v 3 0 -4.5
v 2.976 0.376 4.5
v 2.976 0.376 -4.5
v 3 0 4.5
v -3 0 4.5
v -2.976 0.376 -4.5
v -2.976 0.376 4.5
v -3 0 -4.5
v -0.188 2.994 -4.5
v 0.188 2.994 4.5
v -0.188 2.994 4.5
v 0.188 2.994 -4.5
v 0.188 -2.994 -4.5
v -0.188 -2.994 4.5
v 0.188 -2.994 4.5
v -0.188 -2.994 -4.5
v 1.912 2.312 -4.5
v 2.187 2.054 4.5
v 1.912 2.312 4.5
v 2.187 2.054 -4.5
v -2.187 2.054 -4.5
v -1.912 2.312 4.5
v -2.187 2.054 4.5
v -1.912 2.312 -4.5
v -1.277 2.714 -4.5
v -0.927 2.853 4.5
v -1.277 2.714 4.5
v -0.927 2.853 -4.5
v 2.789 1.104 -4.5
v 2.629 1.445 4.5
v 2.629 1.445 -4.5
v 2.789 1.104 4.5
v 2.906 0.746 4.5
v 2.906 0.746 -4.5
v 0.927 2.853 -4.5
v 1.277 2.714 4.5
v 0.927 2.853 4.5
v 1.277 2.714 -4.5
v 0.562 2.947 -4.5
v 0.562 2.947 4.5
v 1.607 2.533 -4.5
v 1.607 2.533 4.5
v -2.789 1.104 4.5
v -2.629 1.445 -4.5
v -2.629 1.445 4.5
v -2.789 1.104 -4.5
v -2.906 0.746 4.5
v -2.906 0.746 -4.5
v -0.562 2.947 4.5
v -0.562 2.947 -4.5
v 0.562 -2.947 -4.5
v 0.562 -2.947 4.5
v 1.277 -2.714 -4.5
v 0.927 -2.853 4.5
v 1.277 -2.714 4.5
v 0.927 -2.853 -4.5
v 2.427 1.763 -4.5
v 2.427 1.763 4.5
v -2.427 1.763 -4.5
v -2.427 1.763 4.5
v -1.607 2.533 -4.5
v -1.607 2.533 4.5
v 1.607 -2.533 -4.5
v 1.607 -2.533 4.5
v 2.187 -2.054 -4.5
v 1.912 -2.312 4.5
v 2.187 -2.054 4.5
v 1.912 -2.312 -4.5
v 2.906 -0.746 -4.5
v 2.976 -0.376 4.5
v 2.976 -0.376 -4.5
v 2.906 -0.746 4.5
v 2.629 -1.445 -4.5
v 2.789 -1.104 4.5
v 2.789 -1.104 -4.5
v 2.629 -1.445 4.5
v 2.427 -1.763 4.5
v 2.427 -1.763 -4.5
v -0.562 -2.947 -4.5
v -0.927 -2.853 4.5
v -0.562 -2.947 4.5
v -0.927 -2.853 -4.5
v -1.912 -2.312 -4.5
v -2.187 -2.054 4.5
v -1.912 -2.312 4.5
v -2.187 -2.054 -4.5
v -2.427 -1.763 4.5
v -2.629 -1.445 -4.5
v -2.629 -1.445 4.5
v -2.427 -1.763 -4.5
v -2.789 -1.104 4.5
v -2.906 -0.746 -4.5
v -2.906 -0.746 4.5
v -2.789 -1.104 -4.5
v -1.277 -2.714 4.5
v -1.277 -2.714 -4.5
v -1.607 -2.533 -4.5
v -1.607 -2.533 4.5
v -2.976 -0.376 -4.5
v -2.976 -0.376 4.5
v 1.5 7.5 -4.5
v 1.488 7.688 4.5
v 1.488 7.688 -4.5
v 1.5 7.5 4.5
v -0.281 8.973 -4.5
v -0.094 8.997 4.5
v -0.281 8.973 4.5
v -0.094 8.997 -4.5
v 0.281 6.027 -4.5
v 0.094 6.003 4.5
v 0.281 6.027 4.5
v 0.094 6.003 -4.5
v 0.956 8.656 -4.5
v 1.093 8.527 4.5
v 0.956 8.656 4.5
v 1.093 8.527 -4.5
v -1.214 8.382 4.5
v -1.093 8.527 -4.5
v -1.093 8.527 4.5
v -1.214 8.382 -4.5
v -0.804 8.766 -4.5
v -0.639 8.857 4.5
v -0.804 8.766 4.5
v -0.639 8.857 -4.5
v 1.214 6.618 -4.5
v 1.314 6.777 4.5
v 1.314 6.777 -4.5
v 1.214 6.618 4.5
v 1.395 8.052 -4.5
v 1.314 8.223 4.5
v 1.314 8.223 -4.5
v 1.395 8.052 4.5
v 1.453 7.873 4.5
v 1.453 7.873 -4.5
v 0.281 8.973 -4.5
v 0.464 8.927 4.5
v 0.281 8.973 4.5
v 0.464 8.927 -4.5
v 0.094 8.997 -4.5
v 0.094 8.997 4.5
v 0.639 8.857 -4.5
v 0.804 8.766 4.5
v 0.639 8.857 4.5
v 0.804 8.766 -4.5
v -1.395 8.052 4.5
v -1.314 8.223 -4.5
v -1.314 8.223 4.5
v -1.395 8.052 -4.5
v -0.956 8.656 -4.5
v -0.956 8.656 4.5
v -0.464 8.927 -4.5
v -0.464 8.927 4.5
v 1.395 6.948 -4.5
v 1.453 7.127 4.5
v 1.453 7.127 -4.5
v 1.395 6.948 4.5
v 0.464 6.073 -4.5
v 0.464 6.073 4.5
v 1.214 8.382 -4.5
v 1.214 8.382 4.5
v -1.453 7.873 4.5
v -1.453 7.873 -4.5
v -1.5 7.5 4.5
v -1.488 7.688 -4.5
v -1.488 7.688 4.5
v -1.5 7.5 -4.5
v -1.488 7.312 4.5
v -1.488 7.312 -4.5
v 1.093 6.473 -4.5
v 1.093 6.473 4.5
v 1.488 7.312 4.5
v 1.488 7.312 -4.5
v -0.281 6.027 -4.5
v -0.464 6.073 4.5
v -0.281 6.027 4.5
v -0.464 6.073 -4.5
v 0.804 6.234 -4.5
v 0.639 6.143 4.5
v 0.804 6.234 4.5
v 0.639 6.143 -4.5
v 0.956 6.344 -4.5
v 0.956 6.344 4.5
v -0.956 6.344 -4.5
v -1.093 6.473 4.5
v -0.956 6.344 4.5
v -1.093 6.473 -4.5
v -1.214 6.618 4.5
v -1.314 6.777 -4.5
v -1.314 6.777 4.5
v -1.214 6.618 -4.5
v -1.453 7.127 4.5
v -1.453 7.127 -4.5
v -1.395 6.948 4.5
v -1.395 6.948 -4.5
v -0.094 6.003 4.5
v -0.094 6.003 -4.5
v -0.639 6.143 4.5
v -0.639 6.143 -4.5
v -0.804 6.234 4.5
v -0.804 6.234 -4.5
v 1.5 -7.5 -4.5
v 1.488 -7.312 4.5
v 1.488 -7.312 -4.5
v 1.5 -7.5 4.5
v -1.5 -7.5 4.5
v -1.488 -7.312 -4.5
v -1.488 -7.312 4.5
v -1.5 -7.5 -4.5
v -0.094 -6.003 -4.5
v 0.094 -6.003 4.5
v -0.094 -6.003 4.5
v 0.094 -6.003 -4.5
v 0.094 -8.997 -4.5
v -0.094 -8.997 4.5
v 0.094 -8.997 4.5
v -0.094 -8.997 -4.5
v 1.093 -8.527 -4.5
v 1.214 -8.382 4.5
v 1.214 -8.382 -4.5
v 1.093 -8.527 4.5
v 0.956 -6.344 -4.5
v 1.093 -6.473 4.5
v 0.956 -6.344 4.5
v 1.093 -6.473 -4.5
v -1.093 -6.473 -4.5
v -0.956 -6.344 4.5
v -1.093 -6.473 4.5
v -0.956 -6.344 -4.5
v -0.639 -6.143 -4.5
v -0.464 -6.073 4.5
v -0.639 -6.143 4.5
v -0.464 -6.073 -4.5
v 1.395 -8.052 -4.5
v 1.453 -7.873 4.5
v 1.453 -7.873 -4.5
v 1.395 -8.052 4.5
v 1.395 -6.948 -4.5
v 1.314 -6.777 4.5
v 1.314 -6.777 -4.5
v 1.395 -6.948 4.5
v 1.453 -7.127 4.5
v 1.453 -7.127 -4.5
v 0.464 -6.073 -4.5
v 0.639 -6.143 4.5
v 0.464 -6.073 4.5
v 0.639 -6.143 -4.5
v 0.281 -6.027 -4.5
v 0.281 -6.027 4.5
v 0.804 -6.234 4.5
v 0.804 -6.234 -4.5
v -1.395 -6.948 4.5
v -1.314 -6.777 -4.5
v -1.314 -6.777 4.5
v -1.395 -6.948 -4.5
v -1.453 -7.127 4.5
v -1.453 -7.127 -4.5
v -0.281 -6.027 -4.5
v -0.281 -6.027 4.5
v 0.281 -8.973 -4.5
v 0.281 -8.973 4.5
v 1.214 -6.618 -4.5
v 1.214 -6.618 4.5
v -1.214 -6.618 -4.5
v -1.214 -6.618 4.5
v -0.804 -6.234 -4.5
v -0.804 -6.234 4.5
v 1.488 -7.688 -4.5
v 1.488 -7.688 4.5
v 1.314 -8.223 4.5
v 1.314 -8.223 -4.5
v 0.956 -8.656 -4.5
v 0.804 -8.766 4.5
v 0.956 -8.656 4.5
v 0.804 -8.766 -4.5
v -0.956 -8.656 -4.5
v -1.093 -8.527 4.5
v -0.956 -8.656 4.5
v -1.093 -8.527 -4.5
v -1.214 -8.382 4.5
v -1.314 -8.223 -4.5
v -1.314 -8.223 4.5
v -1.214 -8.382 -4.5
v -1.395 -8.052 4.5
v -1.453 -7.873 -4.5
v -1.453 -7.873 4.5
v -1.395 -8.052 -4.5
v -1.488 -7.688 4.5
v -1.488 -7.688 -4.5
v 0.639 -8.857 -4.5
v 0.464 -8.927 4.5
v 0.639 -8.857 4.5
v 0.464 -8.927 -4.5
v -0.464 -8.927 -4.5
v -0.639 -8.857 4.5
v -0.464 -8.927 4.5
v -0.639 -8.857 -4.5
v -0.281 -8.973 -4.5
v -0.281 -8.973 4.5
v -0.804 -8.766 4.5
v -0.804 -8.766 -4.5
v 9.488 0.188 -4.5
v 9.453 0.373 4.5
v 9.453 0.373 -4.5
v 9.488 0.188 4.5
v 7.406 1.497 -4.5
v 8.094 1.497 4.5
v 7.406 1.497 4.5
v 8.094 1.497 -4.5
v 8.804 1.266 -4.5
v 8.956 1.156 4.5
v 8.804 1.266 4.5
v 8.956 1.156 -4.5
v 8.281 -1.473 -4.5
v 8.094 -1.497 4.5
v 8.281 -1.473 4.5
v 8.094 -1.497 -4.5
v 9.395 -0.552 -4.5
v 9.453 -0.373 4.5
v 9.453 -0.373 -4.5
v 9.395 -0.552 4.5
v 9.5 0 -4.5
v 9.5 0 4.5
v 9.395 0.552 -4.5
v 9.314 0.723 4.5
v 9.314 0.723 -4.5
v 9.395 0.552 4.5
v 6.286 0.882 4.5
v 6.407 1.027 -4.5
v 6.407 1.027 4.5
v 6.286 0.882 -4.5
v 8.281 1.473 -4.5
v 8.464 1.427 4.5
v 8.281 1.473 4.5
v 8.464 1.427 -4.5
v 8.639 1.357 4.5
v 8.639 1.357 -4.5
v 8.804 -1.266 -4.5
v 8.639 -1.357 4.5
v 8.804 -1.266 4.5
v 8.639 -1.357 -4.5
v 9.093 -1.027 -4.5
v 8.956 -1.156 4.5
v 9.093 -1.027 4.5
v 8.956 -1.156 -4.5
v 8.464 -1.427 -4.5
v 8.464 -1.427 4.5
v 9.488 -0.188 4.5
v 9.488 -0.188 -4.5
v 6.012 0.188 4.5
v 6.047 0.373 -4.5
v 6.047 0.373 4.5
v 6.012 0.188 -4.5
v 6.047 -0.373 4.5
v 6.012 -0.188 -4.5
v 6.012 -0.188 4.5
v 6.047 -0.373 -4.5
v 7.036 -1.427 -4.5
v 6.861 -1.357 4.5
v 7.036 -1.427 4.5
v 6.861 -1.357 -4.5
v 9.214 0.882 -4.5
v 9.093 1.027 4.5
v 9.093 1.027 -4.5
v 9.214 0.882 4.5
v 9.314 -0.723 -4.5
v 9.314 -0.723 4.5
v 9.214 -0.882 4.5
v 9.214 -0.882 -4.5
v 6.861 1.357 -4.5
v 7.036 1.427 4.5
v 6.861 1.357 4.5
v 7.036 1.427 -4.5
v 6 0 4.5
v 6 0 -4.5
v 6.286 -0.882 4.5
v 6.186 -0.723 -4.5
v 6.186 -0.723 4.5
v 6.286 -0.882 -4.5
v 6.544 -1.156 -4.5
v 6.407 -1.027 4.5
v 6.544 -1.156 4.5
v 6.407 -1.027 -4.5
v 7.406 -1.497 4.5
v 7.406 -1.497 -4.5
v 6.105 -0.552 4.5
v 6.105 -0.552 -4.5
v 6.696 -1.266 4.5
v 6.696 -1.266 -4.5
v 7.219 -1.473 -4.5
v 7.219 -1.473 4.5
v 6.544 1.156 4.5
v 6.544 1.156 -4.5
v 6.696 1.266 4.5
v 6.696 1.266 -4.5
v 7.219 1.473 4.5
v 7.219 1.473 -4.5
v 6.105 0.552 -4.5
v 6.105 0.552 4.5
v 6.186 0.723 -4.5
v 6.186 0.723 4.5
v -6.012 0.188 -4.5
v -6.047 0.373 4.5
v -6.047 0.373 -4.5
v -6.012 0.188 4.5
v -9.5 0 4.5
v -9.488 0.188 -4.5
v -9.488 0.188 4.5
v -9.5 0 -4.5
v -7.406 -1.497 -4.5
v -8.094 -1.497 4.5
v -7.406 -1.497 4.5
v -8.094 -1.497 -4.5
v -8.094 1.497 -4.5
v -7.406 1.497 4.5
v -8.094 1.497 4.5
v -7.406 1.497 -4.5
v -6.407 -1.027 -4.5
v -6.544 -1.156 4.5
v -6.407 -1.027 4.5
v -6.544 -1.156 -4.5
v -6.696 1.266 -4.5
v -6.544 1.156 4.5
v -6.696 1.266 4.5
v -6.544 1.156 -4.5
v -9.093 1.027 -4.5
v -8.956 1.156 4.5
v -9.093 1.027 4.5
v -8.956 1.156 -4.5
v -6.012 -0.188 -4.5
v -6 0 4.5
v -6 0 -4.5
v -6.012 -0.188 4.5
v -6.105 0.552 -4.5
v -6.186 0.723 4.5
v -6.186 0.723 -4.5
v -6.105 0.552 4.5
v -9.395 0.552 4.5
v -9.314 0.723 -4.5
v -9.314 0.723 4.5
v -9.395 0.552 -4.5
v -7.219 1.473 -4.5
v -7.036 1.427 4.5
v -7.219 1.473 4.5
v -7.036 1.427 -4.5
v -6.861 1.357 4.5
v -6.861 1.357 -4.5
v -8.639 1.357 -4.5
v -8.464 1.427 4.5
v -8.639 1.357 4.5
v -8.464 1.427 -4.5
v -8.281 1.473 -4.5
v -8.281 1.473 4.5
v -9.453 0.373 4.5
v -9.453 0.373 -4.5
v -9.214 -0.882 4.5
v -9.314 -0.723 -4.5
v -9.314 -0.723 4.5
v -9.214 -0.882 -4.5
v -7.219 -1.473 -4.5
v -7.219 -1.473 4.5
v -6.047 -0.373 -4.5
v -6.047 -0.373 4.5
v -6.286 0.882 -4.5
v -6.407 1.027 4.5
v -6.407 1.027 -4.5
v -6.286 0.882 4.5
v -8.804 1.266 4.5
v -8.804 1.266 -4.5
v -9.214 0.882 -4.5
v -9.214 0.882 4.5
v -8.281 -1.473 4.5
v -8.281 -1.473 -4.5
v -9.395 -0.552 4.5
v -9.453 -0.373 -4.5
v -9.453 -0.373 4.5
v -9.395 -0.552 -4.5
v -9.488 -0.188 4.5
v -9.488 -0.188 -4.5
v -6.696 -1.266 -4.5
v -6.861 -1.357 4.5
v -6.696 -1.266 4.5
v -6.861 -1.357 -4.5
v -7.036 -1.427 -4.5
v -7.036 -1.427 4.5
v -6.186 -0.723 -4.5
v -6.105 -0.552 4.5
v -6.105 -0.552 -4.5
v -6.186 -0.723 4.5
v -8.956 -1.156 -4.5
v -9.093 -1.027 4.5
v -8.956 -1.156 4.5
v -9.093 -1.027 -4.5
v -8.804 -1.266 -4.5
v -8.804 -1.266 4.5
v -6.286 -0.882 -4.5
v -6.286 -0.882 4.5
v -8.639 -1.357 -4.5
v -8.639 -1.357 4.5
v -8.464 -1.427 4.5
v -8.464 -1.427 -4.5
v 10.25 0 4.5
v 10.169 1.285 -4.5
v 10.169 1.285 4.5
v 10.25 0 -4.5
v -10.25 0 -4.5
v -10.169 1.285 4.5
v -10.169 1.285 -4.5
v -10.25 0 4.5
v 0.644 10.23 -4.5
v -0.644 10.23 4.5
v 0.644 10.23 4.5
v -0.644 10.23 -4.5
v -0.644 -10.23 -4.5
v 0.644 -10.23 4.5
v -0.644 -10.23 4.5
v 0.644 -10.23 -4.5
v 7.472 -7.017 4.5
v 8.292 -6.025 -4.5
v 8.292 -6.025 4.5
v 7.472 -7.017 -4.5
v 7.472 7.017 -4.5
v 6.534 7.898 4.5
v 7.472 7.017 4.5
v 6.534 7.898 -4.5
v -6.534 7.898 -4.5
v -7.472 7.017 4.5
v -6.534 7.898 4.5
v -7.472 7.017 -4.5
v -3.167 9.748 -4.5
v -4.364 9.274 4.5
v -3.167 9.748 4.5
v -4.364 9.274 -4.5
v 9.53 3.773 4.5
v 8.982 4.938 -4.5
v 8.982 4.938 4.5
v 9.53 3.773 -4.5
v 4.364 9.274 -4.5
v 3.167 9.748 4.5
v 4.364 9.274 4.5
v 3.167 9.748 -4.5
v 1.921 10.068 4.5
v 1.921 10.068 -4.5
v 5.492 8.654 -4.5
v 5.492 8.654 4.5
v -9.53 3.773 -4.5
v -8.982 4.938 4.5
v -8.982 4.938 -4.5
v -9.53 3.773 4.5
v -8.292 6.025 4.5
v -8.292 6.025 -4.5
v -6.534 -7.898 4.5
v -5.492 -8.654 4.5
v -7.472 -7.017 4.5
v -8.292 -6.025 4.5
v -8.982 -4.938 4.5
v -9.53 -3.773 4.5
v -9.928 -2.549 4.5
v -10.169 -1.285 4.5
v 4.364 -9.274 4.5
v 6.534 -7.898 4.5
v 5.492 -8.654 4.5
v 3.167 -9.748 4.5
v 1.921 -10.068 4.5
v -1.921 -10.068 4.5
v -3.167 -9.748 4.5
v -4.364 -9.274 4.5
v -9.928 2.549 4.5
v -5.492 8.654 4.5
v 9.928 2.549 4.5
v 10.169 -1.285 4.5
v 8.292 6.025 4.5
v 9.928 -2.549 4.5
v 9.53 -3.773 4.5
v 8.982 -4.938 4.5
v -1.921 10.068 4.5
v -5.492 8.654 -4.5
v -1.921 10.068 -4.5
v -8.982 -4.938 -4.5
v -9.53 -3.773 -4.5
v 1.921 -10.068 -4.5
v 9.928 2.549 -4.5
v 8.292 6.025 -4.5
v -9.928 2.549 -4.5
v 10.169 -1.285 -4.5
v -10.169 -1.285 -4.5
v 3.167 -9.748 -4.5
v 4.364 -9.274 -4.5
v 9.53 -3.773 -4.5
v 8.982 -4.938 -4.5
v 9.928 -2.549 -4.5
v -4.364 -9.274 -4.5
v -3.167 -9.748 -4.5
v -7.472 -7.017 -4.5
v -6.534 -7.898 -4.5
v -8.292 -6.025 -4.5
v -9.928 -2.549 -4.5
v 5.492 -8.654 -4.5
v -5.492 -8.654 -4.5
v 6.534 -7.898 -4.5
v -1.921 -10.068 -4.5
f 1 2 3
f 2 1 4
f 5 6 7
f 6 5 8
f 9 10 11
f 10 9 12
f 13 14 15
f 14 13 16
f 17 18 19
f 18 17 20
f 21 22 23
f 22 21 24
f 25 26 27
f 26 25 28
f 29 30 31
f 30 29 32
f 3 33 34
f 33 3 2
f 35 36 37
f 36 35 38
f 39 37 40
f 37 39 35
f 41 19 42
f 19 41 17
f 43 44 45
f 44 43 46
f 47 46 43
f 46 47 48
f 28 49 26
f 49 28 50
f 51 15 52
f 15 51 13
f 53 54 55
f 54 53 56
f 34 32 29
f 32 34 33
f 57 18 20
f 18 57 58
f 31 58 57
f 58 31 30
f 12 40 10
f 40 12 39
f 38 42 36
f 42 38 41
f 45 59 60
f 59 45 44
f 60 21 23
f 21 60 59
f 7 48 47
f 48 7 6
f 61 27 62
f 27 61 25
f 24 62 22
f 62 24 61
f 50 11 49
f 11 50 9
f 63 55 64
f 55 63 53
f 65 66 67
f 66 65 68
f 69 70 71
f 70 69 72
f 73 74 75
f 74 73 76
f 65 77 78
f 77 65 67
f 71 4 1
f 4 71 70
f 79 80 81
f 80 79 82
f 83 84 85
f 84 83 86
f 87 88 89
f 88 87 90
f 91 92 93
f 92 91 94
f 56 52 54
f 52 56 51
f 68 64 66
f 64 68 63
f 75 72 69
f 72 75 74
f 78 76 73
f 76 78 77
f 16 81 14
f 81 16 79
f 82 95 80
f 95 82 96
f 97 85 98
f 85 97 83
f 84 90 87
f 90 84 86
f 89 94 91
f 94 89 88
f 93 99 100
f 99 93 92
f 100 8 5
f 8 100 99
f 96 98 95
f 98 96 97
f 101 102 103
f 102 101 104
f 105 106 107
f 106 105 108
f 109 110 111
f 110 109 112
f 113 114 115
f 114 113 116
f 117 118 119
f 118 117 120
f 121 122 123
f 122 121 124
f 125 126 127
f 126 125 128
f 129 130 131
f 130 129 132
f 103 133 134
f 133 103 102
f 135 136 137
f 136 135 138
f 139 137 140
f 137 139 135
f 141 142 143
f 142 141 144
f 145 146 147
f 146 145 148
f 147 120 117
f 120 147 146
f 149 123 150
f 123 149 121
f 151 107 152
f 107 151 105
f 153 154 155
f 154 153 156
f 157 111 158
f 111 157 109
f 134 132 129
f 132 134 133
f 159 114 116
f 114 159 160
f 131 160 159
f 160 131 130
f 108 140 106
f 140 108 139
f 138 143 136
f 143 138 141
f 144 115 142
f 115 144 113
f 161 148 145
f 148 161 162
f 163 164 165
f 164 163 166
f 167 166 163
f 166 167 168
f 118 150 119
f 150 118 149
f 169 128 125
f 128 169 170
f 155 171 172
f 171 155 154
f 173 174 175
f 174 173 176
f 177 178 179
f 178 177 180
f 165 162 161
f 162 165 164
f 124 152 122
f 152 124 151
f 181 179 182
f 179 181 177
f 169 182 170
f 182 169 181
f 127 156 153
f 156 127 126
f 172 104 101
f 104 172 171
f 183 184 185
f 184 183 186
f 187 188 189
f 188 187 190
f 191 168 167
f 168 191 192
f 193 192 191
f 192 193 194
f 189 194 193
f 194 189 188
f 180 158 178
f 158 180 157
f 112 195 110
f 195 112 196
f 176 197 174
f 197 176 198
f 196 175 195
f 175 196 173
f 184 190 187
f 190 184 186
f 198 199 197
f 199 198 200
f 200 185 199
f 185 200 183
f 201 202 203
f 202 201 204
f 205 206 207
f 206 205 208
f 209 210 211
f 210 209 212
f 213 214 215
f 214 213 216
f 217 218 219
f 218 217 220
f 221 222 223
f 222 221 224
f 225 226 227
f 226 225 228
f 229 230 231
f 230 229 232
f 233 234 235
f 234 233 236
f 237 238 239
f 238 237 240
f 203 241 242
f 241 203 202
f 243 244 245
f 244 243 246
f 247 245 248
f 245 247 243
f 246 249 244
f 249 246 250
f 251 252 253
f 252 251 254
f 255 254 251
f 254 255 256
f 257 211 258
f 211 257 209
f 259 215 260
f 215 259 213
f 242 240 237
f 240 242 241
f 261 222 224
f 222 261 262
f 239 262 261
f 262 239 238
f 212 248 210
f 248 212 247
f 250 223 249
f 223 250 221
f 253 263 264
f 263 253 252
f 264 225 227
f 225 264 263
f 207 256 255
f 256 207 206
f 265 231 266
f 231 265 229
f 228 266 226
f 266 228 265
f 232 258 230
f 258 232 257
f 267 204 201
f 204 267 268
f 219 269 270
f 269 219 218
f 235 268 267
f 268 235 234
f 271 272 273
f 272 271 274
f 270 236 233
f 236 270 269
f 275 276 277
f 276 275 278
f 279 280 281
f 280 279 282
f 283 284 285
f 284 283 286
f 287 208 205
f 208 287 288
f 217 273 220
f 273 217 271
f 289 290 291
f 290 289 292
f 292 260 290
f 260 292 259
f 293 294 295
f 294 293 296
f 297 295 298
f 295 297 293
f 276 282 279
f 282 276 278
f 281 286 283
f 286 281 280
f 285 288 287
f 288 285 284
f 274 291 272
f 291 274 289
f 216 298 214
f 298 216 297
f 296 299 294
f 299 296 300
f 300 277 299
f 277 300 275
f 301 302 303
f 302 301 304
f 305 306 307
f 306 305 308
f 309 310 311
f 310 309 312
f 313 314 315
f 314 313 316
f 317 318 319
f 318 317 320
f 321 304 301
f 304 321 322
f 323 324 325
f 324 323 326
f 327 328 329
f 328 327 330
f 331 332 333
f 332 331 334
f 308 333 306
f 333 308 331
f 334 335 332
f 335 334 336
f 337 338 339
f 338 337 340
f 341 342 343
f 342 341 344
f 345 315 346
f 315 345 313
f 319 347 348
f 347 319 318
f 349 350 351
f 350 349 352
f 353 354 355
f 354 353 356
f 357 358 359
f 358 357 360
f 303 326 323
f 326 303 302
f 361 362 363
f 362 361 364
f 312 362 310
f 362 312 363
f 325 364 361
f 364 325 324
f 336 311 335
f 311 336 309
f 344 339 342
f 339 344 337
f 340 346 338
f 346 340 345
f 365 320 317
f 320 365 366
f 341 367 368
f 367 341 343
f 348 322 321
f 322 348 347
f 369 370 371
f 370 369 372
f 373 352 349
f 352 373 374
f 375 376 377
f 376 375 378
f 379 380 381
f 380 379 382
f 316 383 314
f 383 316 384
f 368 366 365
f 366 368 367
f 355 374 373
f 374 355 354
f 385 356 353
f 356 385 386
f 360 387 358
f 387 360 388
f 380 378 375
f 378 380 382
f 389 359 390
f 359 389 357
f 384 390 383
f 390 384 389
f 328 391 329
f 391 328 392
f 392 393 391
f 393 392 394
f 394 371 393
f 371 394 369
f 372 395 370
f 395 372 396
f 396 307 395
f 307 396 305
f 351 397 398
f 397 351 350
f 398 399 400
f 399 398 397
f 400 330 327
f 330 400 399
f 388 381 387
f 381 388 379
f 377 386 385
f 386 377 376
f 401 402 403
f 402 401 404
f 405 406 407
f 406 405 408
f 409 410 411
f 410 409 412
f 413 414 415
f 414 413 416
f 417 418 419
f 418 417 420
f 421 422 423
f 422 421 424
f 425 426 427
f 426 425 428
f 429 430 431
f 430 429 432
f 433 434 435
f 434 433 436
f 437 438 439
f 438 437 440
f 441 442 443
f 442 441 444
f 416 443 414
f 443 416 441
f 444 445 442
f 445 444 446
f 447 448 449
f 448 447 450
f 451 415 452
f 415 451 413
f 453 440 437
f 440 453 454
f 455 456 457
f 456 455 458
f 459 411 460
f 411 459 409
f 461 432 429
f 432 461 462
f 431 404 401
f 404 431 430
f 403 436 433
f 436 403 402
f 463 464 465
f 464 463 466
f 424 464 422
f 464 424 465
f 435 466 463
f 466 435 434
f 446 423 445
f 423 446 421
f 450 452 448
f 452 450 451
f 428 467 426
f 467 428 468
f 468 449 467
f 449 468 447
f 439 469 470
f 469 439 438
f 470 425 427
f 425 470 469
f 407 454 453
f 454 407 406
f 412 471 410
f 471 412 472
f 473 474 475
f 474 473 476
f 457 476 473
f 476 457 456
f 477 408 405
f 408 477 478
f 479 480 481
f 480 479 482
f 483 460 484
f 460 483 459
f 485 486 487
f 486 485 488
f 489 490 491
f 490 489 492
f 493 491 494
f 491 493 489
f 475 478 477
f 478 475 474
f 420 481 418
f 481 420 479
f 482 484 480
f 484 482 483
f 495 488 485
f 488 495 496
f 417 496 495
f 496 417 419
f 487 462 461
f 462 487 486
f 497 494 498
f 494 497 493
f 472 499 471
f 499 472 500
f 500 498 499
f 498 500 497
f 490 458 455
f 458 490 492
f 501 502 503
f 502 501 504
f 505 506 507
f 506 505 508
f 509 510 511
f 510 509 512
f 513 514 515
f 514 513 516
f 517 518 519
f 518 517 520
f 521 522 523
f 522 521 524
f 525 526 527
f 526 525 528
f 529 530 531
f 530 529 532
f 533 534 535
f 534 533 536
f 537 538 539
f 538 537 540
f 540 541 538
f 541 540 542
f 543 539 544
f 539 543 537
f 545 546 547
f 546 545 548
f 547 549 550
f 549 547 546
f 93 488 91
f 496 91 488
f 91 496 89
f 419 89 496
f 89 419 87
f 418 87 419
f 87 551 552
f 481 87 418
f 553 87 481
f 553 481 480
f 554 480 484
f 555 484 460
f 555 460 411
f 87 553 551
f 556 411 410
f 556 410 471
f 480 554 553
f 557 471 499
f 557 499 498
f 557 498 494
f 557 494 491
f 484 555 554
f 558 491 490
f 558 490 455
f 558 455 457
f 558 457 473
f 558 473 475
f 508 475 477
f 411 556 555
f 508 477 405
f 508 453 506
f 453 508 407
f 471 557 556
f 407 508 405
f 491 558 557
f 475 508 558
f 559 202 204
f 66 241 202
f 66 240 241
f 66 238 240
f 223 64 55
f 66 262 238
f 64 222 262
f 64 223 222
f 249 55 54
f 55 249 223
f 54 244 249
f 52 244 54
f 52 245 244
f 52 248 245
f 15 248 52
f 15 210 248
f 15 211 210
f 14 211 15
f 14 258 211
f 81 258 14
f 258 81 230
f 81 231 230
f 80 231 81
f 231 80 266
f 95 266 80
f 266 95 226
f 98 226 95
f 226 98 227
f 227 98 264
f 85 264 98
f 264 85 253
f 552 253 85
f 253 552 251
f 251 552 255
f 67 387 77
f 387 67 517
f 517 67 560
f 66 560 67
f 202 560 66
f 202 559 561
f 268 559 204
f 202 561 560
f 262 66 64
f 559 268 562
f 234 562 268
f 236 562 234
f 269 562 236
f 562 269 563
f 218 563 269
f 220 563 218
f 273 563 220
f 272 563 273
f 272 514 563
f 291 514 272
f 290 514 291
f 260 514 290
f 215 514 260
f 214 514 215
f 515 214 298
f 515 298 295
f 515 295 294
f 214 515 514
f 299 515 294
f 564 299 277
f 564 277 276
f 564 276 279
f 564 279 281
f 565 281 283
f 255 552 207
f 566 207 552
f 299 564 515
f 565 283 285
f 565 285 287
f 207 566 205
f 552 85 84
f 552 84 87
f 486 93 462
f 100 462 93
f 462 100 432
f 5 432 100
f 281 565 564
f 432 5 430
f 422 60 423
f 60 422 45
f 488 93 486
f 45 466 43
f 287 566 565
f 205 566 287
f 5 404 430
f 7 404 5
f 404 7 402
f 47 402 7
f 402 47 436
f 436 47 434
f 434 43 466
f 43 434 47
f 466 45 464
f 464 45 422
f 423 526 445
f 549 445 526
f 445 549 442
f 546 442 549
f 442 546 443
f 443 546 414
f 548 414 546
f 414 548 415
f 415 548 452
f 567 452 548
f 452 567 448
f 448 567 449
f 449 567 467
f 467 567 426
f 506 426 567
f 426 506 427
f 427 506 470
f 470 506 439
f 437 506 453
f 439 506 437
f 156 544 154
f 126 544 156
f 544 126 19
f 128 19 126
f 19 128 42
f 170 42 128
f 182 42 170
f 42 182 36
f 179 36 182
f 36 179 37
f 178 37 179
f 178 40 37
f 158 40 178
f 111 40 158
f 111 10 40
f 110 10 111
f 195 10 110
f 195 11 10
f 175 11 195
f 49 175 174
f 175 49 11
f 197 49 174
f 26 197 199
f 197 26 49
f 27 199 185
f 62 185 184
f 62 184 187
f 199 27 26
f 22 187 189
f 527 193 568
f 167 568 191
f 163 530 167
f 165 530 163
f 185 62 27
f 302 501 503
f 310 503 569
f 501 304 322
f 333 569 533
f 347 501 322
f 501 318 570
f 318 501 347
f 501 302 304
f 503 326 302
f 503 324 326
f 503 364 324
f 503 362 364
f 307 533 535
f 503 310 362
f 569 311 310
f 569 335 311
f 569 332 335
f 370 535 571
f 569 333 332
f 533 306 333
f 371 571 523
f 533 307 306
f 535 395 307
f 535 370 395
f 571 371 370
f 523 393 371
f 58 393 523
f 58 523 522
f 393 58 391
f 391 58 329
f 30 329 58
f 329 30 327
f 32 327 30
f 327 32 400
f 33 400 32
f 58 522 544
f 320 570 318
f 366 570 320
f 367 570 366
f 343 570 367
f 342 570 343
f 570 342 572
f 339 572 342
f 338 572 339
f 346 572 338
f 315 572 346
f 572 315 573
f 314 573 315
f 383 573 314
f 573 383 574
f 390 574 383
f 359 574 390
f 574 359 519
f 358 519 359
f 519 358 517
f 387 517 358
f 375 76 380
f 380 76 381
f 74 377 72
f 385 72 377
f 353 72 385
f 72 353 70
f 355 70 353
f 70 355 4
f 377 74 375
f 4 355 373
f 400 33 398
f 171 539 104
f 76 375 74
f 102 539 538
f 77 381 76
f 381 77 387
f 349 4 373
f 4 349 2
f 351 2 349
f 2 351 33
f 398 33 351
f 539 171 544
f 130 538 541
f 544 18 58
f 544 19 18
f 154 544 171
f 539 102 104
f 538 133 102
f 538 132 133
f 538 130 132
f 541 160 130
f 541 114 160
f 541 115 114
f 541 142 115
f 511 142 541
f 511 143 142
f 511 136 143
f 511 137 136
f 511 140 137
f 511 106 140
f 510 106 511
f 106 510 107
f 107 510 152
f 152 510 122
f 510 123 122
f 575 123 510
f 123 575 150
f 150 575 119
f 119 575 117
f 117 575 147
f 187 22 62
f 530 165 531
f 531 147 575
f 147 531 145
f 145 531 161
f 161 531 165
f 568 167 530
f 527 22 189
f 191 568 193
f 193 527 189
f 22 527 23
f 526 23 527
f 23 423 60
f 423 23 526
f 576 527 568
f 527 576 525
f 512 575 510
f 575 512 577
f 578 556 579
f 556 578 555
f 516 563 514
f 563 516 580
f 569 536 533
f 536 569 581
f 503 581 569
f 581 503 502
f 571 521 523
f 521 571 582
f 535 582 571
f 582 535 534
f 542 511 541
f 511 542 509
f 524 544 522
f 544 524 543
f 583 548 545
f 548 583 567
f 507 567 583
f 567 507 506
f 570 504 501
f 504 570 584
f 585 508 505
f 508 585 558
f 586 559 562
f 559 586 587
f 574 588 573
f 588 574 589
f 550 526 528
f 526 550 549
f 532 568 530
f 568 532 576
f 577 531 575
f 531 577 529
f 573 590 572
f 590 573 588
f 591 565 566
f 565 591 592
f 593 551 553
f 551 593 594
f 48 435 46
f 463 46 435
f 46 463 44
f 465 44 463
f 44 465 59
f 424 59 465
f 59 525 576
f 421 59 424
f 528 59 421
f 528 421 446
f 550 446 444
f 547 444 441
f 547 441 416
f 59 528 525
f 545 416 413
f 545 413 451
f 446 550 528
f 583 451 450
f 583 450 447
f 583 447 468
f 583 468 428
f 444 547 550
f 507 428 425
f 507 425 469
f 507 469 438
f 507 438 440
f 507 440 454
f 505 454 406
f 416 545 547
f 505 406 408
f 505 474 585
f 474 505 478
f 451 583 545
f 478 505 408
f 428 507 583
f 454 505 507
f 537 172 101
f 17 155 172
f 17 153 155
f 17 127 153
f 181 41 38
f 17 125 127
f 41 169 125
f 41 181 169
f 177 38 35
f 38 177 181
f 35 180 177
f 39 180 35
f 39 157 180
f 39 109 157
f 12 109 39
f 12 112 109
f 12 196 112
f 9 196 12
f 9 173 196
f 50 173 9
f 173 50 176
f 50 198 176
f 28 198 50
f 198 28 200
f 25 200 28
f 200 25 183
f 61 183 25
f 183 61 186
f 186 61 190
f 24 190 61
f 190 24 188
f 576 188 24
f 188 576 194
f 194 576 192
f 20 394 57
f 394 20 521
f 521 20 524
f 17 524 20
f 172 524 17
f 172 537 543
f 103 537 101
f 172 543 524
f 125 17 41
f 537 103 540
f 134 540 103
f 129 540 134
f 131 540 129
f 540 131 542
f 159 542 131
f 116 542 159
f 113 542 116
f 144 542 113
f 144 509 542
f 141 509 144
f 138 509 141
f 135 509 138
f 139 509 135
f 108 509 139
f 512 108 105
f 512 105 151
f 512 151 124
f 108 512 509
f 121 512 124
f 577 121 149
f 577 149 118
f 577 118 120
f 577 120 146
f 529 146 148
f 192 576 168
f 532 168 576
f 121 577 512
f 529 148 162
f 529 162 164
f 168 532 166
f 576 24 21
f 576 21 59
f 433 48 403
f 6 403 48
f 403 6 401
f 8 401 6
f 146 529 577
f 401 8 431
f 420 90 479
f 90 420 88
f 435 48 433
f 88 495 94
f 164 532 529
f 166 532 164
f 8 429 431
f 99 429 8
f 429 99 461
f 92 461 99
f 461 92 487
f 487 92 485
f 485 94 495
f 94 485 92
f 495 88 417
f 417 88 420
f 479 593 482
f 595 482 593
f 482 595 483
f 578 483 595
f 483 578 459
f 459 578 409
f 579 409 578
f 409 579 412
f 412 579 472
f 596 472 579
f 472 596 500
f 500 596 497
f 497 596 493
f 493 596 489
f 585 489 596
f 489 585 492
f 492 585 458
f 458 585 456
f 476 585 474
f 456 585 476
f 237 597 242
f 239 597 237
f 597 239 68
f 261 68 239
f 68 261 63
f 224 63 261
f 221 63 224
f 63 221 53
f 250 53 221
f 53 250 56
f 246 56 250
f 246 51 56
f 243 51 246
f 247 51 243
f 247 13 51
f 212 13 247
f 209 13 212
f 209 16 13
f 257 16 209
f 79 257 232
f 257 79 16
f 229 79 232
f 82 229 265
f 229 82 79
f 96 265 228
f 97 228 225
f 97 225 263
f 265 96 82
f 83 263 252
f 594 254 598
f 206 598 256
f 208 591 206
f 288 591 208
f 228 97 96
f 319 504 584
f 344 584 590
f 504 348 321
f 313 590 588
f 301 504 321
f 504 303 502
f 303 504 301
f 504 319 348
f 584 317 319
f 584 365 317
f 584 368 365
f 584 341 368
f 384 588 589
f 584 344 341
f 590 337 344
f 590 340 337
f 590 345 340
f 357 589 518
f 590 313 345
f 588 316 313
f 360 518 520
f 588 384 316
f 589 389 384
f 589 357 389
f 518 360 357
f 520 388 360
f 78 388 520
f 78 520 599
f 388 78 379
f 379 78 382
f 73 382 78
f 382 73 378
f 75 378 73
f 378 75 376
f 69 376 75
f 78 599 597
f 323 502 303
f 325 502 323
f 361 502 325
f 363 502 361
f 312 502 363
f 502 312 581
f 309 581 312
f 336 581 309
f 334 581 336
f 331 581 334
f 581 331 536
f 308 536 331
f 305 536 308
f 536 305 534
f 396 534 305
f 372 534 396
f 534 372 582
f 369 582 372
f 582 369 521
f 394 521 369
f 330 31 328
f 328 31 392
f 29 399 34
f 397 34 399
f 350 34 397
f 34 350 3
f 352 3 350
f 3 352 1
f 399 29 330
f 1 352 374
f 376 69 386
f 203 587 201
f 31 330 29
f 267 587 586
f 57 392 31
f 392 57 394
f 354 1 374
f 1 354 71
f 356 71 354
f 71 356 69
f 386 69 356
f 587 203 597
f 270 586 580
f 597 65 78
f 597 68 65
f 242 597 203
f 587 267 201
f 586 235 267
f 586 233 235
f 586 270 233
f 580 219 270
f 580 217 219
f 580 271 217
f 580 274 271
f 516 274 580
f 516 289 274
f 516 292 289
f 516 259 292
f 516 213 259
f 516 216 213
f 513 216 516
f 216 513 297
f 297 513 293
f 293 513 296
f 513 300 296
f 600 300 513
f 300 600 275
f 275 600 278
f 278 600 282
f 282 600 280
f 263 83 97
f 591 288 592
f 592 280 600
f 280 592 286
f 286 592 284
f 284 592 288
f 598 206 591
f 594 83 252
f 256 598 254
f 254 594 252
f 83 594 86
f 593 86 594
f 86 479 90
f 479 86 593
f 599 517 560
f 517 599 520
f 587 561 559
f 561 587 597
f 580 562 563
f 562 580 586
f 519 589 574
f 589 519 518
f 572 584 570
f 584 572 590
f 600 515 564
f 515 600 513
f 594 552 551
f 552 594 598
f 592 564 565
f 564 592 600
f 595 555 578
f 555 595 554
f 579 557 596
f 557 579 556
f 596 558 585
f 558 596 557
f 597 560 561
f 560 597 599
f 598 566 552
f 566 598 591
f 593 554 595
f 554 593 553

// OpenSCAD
$fn = 50;


difference() {
	union() {
		translate(v = [0, 0, -4.5000000000]) {
			rotate(a = [0, 0, 0]) {
				cylinder(h = 9, r = 10.2500000000);
			}
		}
	}
	union() {
		translate(v = [0, 0, -125.0000000000]) {
			rotate(a = [0, 0, 0]) {
				cylinder(h = 250, r = 3.0000000000);
			}
		}
		translate(v = [0, 7.5000000000, -125.0000000000]) {
			rotate(a = [0, 0, 0]) {
				cylinder(h = 250, r = 1.5000000000);
			}
		}
		translate(v = [0, -7.5000000000, -125.0000000000]) {
			rotate(a = [0, 0, 0]) {
				cylinder(h = 250, r = 1.5000000000);
			}
		}
		translate(v = [7.7500000000, 0, -125.0000000000]) {
			rotate(a = [0, 0, 0]) {
				hull() {
					translate(v = [0.2500000000, 0, 0]) {
						rotate(a = [0, 0, 0]) {
							translate(v = [0, 0, 0]) {
								rotate(a = [0, 0, 0]) {
									cylinder(h = 250, r = 1.5000000000);
								}
							}
						}
					}
					translate(v = [-0.2500000000, 0, 0]) {
						rotate(a = [0, 0, 0]) {
							translate(v = [0, 0, 0]) {
								rotate(a = [0, 0, 0]) {
									cylinder(h = 250, r = 1.5000000000);
								}
							}
						}
					}
				}
			}
		}
		translate(v = [-7.7500000000, 0, -125.0000000000]) {
			rotate(a = [0, 0, 0]) {
				hull() {
					translate(v = [0.2500000000, 0, 0]) {
						rotate(a = [0, 0, 0]) {
							translate(v = [0, 0, 0]) {
								rotate(a = [0, 0, 0]) {
									cylinder(h = 250, r = 1.5000000000);
								}
							}
						}
					}
					translate(v = [-0.2500000000, 0, 0]) {
						rotate(a = [0, 0, 0]) {
							translate(v = [0, 0, 0]) {
								rotate(a = [0, 0, 0]) {
									cylinder(h = 250, r = 1.5000000000);
								}
							}
						}
					}
				}
			}
		}
	}
}
